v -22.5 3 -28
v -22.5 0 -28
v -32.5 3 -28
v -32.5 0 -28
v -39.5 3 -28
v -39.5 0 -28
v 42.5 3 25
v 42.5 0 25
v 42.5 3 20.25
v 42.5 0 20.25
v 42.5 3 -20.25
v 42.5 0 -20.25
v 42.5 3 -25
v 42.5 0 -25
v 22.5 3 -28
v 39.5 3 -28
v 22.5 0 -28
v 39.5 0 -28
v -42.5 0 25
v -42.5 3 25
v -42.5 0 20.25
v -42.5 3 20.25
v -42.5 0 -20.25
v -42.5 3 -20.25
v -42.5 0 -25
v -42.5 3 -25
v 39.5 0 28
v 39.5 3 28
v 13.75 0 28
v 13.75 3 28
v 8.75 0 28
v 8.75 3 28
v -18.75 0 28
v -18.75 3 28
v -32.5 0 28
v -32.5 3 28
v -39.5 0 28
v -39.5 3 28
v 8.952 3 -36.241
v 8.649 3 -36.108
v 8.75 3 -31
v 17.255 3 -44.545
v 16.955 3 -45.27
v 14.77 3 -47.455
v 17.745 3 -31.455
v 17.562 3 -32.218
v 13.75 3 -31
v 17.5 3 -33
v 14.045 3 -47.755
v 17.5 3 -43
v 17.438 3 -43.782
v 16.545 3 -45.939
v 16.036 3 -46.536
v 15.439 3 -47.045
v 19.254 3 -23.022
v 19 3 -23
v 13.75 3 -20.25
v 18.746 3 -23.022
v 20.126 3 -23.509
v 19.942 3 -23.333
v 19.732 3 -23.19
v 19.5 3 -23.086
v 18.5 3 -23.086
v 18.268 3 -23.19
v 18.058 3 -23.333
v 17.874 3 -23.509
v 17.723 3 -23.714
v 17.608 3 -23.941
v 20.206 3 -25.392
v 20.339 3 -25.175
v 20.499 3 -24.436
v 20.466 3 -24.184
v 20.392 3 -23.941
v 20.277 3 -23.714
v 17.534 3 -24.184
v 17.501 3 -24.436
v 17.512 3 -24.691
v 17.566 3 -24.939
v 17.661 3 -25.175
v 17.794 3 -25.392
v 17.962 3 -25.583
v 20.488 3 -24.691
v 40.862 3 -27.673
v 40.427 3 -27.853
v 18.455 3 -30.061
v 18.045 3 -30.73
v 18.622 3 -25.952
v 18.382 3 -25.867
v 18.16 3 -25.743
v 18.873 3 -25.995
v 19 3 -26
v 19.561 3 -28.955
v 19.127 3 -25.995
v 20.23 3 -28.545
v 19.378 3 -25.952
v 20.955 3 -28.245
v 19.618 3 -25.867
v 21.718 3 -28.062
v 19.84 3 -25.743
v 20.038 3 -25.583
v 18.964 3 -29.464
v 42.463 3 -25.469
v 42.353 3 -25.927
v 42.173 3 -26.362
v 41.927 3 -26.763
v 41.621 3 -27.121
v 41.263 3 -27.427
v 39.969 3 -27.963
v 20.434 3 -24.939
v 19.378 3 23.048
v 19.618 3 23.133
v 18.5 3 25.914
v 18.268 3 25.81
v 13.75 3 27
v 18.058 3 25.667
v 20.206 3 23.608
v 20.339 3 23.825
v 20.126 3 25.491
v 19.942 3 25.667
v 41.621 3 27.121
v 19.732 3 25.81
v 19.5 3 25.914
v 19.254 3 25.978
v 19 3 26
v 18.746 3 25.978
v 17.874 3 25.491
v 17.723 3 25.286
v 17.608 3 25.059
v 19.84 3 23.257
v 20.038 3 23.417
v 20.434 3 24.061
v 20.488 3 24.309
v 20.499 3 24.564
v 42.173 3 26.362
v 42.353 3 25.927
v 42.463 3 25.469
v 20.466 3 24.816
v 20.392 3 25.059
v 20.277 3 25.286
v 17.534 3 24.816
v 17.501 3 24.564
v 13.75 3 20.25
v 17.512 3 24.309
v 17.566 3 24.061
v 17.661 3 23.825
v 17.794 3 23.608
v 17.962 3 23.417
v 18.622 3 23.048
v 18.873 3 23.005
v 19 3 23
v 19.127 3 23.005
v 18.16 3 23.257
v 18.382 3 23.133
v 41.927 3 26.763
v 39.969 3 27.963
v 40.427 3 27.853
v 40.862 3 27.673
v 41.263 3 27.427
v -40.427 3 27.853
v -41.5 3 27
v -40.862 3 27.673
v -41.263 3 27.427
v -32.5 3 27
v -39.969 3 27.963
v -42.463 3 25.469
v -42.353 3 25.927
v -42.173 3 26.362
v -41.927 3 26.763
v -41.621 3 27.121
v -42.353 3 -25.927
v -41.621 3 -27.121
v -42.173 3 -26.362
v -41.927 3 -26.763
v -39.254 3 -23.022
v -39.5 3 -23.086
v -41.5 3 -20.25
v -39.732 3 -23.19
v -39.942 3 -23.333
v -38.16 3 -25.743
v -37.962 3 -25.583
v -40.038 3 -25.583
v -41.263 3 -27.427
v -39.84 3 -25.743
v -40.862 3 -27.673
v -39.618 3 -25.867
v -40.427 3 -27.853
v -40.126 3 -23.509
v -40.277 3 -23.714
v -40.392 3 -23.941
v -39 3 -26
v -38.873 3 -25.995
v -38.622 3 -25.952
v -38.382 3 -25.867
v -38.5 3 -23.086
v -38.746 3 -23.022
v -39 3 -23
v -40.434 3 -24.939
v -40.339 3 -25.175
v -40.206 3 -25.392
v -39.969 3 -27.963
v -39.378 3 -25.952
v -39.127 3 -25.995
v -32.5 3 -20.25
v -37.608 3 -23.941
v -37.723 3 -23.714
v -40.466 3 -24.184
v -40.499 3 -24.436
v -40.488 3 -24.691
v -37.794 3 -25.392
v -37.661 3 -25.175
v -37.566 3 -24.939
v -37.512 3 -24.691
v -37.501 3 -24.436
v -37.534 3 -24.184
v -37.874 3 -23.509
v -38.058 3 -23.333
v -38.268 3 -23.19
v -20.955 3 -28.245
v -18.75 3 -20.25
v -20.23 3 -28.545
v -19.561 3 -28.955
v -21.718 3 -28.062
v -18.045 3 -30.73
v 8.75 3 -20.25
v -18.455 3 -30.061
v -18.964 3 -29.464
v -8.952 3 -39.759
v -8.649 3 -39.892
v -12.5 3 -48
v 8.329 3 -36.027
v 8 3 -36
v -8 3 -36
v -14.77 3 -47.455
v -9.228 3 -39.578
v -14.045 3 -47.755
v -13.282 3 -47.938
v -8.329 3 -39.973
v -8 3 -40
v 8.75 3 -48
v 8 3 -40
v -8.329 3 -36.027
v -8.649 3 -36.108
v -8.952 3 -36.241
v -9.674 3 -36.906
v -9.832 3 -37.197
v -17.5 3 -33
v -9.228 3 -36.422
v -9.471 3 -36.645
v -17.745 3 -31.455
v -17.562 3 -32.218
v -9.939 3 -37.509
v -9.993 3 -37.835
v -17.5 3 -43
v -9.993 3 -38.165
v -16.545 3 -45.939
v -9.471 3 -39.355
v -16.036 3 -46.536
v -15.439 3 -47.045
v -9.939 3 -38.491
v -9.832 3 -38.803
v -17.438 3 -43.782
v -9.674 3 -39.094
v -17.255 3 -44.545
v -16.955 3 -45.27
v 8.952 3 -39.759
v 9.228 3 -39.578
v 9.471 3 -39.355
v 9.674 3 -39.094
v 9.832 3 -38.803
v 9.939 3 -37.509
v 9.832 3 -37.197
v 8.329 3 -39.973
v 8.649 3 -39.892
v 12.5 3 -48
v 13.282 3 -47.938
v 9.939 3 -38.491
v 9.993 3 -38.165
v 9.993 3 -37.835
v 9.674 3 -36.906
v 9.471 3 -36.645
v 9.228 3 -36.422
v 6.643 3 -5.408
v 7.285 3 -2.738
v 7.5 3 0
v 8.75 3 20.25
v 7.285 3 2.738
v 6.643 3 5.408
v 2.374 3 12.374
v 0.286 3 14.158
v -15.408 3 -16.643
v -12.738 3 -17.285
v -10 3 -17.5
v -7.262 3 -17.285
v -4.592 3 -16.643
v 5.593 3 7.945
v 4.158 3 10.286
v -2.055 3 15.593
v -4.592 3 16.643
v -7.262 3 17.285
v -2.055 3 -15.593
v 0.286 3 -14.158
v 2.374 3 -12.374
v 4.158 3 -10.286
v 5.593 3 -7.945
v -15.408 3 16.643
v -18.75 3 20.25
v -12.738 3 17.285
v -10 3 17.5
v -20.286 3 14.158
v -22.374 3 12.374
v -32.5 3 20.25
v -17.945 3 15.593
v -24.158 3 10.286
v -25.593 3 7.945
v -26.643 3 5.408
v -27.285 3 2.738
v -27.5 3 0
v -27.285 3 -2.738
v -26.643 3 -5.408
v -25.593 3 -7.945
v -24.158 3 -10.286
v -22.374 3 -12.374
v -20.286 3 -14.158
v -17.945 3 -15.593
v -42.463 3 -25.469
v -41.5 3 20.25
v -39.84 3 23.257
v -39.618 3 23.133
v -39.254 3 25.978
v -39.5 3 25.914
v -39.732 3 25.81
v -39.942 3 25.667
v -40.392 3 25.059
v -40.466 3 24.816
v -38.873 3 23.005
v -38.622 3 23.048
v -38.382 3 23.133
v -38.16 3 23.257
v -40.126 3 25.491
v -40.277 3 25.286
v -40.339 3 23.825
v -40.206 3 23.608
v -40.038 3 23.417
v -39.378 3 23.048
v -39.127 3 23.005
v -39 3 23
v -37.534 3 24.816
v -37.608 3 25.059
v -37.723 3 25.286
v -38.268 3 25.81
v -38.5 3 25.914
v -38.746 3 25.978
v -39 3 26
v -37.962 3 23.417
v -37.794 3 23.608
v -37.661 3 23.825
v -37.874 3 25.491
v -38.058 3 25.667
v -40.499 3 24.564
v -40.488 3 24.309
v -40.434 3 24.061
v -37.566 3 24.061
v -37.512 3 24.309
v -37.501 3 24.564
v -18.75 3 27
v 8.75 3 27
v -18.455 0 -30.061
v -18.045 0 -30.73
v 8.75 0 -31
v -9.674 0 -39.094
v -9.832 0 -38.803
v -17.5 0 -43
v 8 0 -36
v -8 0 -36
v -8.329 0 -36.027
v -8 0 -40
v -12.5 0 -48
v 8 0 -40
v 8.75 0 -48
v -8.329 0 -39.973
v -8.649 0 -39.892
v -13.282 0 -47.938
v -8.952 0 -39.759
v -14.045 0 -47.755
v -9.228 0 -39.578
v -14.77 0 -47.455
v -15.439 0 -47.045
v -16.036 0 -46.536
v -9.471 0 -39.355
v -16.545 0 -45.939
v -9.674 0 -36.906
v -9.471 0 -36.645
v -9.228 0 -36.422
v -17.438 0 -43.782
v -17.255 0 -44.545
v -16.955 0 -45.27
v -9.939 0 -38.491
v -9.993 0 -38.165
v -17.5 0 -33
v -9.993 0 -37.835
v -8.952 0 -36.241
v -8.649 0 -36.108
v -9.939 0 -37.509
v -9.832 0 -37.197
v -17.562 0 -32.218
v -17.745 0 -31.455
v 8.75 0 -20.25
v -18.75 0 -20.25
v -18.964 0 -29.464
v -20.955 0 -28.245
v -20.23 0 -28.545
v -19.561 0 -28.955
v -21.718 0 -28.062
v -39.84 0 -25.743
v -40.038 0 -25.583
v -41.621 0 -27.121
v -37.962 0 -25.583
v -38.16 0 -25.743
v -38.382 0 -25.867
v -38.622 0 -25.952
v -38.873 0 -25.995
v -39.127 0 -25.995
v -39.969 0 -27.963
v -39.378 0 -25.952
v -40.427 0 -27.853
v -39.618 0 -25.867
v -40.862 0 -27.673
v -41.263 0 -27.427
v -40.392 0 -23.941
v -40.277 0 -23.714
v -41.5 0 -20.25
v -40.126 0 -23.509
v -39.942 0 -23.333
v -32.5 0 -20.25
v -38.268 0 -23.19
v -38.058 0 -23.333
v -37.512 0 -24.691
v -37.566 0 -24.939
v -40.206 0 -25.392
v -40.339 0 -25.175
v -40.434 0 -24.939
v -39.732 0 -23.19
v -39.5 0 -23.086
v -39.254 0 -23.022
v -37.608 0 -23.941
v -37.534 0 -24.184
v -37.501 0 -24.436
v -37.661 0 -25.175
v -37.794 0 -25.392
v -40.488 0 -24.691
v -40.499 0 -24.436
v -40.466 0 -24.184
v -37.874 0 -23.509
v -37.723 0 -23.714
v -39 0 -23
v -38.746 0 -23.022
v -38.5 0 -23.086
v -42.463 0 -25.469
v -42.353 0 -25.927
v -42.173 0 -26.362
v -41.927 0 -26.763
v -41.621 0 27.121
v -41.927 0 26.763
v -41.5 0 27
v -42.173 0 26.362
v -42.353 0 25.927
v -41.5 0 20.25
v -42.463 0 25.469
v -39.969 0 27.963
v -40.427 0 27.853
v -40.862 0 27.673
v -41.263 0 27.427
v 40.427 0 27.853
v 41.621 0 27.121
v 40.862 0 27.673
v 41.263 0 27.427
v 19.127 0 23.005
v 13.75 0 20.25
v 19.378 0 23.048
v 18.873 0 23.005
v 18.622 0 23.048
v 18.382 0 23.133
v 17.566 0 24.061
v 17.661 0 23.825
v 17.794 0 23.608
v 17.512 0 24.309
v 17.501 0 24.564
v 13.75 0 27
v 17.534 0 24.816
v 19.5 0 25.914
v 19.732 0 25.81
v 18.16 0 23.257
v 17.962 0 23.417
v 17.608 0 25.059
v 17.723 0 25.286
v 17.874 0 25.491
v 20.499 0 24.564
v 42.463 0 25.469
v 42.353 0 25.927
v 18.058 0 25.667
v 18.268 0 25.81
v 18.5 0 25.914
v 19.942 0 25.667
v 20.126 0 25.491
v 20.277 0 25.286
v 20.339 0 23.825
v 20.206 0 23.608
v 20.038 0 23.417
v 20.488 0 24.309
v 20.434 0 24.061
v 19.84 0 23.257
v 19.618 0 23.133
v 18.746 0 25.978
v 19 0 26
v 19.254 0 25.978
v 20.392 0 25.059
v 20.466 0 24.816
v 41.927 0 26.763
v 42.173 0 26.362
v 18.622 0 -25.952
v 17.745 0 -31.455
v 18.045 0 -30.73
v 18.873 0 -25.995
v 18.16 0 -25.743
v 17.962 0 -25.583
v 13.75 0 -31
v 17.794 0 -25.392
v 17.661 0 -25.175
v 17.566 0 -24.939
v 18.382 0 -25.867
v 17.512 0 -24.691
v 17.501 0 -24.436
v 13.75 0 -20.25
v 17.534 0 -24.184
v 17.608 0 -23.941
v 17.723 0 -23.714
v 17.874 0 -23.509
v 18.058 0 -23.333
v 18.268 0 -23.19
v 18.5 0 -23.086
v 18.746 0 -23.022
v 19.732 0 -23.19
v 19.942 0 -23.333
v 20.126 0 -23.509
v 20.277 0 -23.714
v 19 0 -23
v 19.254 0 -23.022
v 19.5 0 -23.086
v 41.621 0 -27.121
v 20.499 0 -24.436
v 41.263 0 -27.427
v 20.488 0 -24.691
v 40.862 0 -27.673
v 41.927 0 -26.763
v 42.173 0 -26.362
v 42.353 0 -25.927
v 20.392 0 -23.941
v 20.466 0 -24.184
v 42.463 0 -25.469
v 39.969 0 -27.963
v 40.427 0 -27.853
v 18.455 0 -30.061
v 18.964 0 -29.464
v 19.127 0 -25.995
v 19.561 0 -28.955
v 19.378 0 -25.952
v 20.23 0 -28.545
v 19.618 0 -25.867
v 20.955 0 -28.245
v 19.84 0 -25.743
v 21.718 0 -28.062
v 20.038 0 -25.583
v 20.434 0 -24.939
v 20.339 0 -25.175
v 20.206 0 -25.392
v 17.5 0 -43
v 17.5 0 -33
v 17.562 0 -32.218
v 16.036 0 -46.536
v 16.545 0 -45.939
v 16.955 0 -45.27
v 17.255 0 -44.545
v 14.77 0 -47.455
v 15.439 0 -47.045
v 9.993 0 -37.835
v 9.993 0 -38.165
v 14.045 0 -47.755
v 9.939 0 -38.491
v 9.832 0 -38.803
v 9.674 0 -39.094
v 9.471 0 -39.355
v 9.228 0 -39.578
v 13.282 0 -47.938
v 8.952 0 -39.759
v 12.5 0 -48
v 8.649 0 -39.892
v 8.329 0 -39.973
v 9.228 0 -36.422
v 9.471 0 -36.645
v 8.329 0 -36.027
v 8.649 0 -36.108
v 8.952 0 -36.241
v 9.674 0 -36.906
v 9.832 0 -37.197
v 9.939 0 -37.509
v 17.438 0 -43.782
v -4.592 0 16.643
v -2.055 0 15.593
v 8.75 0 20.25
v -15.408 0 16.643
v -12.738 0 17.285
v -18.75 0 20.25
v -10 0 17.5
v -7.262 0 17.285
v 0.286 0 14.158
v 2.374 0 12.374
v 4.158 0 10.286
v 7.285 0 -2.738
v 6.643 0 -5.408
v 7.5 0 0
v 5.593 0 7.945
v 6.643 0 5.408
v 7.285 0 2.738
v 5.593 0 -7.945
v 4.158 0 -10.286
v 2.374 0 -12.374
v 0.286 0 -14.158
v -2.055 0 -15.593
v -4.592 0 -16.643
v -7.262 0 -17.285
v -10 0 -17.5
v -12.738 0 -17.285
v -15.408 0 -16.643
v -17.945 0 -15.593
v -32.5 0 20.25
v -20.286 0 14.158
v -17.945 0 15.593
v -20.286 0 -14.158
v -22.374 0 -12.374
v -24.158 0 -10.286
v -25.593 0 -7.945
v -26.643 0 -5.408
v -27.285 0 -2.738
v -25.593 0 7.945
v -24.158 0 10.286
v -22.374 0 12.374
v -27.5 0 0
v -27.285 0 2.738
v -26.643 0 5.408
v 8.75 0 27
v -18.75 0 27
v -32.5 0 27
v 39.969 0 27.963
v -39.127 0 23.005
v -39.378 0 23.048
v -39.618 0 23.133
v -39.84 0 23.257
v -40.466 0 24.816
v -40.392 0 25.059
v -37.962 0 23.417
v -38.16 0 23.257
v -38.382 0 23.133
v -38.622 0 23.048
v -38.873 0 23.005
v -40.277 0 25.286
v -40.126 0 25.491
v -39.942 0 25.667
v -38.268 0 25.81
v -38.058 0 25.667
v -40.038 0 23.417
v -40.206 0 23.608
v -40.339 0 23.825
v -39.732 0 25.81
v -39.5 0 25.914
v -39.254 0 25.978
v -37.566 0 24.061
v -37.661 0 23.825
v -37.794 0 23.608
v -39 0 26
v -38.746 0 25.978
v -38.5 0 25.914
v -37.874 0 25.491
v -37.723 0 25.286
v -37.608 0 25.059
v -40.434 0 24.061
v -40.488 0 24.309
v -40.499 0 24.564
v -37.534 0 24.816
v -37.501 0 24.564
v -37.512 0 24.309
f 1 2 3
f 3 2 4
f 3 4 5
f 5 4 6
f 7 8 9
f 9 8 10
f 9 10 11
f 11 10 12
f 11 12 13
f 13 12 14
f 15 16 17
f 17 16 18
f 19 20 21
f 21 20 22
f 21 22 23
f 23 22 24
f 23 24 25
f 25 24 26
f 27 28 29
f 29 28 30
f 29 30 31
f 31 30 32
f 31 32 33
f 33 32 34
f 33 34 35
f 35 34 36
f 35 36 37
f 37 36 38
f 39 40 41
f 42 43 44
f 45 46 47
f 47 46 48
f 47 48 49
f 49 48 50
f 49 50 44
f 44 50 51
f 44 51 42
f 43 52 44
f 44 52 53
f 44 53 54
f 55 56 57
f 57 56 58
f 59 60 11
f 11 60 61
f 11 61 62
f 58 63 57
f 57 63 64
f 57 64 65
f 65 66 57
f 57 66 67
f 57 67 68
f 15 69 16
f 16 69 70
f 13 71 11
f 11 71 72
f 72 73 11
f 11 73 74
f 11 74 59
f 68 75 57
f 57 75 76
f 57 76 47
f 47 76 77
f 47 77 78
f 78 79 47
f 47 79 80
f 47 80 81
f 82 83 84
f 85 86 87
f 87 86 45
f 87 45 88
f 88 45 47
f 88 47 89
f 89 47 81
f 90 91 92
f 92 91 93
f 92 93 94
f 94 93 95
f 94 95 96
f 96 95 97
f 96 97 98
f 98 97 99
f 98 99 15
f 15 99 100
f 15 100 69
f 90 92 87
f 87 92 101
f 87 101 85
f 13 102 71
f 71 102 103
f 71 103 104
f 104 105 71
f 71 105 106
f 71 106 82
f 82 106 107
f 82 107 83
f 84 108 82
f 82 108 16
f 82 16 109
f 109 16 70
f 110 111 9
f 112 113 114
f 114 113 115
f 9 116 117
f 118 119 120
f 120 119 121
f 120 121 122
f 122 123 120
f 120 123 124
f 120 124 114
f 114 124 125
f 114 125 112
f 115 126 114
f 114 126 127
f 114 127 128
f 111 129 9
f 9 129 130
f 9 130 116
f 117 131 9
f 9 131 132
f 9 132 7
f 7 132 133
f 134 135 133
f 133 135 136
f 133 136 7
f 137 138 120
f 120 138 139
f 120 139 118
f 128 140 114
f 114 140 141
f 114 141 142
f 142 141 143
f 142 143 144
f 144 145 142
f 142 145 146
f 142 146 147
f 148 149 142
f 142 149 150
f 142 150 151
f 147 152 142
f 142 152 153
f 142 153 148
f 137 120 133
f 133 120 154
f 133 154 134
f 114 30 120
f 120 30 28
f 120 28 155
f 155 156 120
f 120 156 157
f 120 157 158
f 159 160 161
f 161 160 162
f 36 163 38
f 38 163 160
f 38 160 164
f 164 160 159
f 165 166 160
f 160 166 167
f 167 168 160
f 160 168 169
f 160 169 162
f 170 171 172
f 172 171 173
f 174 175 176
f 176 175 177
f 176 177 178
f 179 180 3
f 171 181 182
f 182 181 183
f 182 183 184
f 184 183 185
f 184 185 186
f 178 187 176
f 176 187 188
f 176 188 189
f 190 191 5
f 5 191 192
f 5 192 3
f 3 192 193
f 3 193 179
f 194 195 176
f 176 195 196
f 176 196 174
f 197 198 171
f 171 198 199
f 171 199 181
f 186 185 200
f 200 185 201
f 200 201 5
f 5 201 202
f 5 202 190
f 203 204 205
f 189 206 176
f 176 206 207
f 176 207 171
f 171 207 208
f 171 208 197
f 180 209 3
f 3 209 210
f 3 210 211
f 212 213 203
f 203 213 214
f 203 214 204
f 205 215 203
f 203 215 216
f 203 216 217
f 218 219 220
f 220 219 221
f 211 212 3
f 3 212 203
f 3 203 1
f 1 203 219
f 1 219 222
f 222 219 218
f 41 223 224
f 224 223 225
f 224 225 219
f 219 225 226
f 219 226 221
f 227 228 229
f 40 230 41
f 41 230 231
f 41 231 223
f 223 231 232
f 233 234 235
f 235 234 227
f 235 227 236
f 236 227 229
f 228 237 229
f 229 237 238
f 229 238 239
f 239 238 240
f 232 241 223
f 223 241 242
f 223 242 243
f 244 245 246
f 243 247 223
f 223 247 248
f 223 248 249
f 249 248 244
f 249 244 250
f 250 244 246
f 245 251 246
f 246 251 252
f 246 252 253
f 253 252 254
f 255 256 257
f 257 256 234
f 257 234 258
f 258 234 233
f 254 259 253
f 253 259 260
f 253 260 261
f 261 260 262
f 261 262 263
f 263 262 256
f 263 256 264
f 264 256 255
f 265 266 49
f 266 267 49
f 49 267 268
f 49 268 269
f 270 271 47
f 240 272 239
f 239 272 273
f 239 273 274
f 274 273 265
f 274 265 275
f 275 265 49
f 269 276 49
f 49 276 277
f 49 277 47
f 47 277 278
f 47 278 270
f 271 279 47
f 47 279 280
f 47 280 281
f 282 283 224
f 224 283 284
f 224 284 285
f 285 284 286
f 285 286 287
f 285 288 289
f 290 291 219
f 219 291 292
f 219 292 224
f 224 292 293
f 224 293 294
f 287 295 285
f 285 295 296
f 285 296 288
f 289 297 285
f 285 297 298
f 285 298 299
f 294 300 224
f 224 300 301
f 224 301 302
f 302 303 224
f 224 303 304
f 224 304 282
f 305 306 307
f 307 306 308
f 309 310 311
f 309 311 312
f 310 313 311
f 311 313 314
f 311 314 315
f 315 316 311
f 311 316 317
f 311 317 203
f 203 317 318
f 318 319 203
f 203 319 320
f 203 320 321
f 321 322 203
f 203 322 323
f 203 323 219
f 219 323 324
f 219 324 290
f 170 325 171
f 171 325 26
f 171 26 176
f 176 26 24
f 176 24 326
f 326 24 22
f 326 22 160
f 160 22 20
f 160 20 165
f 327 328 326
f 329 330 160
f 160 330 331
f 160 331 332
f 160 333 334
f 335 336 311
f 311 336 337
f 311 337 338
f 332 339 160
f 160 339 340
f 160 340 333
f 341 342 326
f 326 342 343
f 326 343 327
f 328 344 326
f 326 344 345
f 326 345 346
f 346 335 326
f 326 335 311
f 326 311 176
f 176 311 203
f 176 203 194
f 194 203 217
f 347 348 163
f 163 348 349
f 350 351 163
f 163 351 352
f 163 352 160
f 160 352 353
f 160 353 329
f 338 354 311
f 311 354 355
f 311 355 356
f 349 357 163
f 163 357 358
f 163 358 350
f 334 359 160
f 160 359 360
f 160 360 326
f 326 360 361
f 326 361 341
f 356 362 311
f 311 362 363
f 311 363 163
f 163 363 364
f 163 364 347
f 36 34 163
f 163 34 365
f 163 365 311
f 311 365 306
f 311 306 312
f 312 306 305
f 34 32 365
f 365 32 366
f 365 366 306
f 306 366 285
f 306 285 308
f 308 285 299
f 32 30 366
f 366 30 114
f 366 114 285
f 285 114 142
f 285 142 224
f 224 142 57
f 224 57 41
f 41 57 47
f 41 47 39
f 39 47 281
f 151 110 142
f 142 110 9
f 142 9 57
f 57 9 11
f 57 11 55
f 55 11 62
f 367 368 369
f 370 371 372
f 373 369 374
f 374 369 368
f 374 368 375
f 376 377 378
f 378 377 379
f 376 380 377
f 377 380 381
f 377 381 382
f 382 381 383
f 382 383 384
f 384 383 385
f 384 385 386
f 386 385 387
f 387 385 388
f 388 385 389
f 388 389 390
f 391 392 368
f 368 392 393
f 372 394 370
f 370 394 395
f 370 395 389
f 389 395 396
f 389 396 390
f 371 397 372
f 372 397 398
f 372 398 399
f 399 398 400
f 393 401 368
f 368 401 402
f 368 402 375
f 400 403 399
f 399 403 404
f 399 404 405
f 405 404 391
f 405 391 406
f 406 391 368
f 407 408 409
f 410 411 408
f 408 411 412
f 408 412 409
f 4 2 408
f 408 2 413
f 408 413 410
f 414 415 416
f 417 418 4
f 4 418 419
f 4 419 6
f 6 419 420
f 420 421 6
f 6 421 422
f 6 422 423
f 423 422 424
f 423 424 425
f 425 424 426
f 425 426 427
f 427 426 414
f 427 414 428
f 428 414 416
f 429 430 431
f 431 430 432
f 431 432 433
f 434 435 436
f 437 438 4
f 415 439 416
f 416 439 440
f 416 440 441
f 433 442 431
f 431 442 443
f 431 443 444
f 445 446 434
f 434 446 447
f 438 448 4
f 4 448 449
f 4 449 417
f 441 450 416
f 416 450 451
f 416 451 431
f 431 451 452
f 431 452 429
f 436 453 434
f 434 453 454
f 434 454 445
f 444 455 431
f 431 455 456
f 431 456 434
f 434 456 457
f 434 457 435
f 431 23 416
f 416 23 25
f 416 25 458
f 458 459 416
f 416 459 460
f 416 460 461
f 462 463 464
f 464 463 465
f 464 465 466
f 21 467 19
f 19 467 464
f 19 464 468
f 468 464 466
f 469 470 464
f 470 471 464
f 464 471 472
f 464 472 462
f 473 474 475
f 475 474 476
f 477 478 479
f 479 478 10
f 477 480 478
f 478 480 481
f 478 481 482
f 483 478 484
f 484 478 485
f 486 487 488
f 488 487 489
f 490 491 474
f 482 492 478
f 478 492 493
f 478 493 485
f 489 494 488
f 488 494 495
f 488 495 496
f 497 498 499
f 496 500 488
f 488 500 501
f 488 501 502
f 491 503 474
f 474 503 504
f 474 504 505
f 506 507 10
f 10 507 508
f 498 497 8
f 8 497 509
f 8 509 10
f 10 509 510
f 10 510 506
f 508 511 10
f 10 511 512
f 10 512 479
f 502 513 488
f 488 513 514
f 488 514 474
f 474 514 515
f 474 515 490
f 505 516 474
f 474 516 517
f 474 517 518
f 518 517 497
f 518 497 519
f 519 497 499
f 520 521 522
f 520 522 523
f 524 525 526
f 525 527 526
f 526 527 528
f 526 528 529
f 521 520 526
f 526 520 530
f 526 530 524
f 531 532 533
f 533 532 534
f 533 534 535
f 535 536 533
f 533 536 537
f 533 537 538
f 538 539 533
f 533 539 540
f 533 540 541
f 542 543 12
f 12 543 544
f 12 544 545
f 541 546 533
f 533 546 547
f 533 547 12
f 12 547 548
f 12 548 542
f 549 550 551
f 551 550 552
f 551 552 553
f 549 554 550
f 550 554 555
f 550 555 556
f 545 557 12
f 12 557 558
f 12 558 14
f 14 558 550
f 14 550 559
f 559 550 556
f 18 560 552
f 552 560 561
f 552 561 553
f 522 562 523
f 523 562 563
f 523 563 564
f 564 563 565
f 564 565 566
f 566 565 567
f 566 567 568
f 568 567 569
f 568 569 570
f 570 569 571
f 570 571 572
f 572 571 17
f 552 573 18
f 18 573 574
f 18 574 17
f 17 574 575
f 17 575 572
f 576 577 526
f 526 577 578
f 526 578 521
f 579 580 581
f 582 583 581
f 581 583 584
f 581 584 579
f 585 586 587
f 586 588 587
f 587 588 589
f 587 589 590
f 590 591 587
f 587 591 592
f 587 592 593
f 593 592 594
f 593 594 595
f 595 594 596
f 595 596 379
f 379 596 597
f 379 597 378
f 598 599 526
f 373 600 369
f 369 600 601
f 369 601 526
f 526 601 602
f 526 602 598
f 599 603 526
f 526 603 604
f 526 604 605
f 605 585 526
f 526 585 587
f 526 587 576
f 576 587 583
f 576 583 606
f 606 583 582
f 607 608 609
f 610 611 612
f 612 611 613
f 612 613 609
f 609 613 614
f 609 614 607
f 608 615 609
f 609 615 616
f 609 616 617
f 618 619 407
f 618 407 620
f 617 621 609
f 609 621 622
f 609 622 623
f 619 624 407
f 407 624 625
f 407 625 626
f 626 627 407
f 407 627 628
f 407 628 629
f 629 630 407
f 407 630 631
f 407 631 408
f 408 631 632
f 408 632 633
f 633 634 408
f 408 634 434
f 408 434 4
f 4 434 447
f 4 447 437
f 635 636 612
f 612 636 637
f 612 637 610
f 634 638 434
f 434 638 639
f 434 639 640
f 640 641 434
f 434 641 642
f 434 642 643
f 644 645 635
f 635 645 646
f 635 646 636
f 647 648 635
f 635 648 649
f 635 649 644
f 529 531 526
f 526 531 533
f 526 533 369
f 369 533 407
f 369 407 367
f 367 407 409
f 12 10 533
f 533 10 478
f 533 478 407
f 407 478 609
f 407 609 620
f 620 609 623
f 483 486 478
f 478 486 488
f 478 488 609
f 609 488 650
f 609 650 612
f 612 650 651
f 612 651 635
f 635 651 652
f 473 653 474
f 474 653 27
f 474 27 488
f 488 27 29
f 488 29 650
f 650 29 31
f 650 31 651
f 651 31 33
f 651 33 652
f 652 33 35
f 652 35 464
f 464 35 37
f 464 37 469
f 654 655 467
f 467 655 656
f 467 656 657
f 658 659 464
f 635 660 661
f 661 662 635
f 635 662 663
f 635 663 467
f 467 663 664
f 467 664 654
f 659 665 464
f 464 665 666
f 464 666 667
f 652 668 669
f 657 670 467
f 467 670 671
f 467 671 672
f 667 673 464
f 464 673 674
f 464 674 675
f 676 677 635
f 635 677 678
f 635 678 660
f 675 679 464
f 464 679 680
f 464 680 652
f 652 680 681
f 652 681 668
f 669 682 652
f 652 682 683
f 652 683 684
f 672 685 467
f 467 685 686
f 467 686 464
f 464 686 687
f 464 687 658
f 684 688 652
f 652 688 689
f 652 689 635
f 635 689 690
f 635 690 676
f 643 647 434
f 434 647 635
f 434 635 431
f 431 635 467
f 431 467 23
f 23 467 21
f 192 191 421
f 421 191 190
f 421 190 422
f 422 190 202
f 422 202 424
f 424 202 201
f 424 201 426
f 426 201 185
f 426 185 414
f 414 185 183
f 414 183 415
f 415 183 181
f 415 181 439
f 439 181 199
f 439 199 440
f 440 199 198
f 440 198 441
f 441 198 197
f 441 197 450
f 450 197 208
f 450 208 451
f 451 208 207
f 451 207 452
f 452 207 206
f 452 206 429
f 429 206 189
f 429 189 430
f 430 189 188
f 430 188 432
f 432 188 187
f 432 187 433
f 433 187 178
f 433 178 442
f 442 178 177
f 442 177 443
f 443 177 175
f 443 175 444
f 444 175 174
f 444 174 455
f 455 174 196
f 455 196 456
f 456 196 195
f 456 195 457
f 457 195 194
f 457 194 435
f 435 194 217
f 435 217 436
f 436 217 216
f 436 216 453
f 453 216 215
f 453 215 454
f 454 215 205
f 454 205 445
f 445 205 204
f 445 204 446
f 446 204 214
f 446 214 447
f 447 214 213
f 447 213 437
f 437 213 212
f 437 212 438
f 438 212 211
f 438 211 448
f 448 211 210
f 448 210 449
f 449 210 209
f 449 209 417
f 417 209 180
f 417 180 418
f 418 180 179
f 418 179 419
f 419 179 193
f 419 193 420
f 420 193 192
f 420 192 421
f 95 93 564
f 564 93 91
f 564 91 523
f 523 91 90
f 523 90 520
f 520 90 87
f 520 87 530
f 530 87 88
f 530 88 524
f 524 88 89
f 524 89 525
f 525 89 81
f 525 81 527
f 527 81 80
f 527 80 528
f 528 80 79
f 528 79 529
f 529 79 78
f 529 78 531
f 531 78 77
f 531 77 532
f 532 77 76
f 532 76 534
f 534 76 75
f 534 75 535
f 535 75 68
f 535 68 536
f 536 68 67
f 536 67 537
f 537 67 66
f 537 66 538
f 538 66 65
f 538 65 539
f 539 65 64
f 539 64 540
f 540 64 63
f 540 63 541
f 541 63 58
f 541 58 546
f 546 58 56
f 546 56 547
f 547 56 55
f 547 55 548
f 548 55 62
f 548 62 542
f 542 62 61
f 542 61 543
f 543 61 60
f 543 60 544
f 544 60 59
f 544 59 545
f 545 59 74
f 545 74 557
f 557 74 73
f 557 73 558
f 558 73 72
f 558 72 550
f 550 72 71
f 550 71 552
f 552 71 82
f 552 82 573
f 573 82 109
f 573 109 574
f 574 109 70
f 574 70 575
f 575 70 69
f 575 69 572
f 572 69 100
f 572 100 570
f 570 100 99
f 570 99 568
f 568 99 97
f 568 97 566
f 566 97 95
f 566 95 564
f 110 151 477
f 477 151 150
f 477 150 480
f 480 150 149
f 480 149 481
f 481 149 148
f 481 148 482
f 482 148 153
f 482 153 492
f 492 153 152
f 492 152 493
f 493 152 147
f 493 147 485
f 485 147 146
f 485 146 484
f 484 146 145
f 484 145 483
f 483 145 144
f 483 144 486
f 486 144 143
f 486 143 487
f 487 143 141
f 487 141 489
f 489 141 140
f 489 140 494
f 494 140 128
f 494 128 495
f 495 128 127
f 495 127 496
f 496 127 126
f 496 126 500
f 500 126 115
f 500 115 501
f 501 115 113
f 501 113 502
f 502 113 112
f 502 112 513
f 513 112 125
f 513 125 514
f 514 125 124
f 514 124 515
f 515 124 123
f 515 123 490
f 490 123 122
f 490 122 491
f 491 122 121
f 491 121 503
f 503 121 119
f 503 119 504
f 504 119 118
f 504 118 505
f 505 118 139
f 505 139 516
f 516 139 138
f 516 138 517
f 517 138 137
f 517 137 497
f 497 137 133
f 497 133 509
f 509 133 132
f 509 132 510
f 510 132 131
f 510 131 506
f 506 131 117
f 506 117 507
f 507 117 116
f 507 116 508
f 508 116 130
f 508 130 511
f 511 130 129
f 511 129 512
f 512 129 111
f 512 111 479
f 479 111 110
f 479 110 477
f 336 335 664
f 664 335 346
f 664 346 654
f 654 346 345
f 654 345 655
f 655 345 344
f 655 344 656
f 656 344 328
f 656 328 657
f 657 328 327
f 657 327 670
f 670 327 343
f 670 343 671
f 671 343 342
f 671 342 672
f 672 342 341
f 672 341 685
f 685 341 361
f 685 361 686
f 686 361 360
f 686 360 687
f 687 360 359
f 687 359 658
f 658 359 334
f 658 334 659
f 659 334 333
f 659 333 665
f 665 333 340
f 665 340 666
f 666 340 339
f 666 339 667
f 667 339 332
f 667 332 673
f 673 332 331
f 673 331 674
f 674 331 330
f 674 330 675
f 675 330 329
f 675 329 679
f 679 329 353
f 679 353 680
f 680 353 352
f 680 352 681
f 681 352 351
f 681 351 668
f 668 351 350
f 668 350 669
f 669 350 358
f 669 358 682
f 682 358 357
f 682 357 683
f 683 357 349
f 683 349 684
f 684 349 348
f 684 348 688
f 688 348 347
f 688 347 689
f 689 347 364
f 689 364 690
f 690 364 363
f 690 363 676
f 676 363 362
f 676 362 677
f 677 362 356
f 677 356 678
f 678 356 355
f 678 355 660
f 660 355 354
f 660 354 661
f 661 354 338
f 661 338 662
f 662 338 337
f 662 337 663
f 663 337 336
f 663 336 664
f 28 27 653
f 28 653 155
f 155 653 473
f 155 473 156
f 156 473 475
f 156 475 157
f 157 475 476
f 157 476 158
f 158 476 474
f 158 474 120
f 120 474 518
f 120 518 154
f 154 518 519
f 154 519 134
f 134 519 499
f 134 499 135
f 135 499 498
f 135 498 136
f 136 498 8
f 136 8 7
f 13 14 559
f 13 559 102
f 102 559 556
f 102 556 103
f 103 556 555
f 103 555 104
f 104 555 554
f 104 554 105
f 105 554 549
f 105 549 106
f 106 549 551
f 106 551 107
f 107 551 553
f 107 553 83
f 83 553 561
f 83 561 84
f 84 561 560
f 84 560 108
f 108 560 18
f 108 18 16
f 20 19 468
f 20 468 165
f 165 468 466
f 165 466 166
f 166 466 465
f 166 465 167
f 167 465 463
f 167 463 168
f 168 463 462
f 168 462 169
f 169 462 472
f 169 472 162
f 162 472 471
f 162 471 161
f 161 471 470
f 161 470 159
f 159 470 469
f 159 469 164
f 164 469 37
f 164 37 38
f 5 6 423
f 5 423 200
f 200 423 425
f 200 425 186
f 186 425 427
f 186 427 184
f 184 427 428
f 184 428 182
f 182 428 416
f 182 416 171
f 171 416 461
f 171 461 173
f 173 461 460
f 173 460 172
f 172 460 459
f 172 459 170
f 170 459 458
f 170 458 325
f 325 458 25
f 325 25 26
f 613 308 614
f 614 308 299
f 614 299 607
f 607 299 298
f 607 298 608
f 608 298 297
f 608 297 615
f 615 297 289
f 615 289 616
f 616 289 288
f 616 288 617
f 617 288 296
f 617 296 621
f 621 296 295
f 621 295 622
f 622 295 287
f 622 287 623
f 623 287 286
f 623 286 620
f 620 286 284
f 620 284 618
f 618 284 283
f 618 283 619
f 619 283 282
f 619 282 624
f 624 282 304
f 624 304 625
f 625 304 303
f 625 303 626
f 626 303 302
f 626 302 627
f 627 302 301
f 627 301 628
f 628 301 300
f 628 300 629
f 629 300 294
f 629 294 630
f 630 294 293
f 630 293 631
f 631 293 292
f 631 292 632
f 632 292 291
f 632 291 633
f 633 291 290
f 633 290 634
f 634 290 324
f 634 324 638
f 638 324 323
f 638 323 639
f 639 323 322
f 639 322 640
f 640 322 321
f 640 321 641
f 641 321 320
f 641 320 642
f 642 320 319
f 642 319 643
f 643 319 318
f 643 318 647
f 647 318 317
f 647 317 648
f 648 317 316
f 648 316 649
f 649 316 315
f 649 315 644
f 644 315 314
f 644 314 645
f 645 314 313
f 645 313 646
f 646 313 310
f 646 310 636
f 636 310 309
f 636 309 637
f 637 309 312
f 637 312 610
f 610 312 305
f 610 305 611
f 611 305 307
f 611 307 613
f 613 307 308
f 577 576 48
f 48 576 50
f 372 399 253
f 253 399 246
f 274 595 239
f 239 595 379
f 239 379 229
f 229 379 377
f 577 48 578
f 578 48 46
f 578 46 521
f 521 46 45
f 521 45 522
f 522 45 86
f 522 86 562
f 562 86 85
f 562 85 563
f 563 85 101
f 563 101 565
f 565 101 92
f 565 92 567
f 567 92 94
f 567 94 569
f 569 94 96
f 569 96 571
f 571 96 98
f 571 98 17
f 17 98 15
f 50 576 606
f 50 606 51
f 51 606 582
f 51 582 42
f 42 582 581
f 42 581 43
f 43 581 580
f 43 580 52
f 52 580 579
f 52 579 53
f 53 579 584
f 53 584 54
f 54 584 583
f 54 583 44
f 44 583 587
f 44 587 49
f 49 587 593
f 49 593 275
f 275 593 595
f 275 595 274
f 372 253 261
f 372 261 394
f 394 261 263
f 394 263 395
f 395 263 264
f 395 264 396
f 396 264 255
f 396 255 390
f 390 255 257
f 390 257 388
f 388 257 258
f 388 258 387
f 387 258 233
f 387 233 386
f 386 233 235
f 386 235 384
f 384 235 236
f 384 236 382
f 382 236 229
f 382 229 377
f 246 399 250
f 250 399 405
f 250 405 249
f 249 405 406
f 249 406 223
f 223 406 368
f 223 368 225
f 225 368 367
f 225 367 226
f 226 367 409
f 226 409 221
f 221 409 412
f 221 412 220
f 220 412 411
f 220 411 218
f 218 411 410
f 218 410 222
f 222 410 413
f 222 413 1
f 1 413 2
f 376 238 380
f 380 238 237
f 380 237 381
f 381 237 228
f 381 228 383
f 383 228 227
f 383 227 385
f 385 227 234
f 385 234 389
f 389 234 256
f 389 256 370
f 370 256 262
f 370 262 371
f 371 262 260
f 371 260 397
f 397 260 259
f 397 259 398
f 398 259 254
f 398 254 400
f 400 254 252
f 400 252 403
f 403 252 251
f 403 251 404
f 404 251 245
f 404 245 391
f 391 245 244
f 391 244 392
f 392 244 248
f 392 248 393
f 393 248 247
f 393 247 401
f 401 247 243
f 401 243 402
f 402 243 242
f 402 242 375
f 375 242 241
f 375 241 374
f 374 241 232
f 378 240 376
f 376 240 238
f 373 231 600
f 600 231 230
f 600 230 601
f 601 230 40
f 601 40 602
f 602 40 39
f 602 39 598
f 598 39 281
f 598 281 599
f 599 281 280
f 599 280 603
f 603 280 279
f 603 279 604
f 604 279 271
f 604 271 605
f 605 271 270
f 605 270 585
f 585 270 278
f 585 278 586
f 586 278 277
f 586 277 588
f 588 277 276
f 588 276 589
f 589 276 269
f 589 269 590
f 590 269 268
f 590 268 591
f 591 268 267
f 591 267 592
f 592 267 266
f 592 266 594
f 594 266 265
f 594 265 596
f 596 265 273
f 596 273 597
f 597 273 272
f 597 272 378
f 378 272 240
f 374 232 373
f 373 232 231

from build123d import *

# Parameters (mm, degrees)
SKETCH1_W               = 85
SKETCH1_H               = 56
BOSS_EXTRUDE1_DEPTH     = 3
SKETCH2_R               = 1.5
CUT_EXTRUDE1_DEPTH      = 1
CUT_EXTRUDE1_DEPTH_BACK = 4
FILLET1_R               = 3
SKETCH3_R               = 17.5
CUT_EXTRUDE2_DEPTH      = 1
CUT_EXTRUDE2_DEPTH_BACK = 4
SKETCH4_W               = 35
SKETCH4_H               = 20
BOSS_EXTRUDE2_DEPTH     = 3
FILLET2_R               = 5
CUT_EXTRUDE3_DEPTH      = 1
CUT_EXTRUDE3_DEPTH_BACK = 4


with BuildPart() as part:
    # Sketch1 → Boss-Extrude1 (new body)
    with BuildSketch(Plane(origin=(0, 0, 0), x_dir=(1, 0, 0), z_dir=(0, 1, 0))):
        Rectangle(SKETCH1_W, SKETCH1_H)
    extrude(amount=BOSS_EXTRUDE1_DEPTH)

    # Sketch2 → Cut-Extrude1 (cut, two sides)
    with BuildSketch(Plane(origin=(0, 3, 0), x_dir=(1, 0, 0), z_dir=(0, 1, 0))) as cut_extrude1_sk:
        with Locations((-39, 24.5)):
            Circle(SKETCH2_R)
        with Locations((19, 24.5)):
            Circle(SKETCH2_R)
        with Locations((19, -24.5)):
            Circle(SKETCH2_R)
        with Locations((-39, -24.5)):
            Circle(SKETCH2_R)
    extrude(amount=CUT_EXTRUDE1_DEPTH, mode=Mode.SUBTRACT)
    extrude(cut_extrude1_sk.sketch, amount=-CUT_EXTRUDE1_DEPTH_BACK, mode=Mode.SUBTRACT)

    # Fillet1
    fillet1_edges = [part.edges().sort_by_distance(p)[0] for p in [
        (42.5, 1.5, 28),
        (-42.5, 1.5, 28),
        (-42.5, 1.5, -28),
        (42.5, 1.5, -28),
    ]]
    fillet(fillet1_edges, radius=FILLET1_R)

    # Sketch3 → Cut-Extrude2 (cut, two sides)
    with BuildSketch(Plane(origin=(0, 3, 0), x_dir=(1, 0, 0), z_dir=(0, 1, 0))) as cut_extrude2_sk:
        with Locations((-10, 0)):
            Circle(SKETCH3_R)
    extrude(amount=CUT_EXTRUDE2_DEPTH, mode=Mode.SUBTRACT)
    extrude(cut_extrude2_sk.sketch, amount=-CUT_EXTRUDE2_DEPTH_BACK, mode=Mode.SUBTRACT)

    # Sketch4 → Boss-Extrude2 (add)
    with BuildSketch(Plane(origin=(0, 3, 0), x_dir=(1, 0, 0), z_dir=(0, 1, 0))):
        with Locations((0, 38)):
            Rectangle(SKETCH4_W, SKETCH4_H)
    extrude(amount=-BOSS_EXTRUDE2_DEPTH)

    # Fillet2
    fillet2_edges = [part.edges().sort_by_distance(p)[0] for p in [
        (17.5, 1.5, -48),
        (17.5, 1.5, -28),
        (-17.5, 1.5, -28),
        (-17.5, 1.5, -48),
    ]]
    fillet(fillet2_edges, radius=FILLET2_R)

    # Sketch5 → Cut-Extrude3 (cut, two sides)
    with BuildSketch(Plane(origin=(0, 3, 0), x_dir=(1, 0, 0), z_dir=(0, 1, 0))) as cut_extrude3_sk:
        with BuildLine():
            Line((-8, 40), (8, 40))
            ThreePointArc((8, 40), (10, 38), (8, 36))
            Line((8, 36), (-8, 36))
            ThreePointArc((-8, 36), (-10, 38), (-8, 40))
        make_face()
    extrude(amount=CUT_EXTRUDE3_DEPTH, mode=Mode.SUBTRACT)
    extrude(cut_extrude3_sk.sketch, amount=-CUT_EXTRUDE3_DEPTH_BACK, mode=Mode.SUBTRACT)


solid = part.part
